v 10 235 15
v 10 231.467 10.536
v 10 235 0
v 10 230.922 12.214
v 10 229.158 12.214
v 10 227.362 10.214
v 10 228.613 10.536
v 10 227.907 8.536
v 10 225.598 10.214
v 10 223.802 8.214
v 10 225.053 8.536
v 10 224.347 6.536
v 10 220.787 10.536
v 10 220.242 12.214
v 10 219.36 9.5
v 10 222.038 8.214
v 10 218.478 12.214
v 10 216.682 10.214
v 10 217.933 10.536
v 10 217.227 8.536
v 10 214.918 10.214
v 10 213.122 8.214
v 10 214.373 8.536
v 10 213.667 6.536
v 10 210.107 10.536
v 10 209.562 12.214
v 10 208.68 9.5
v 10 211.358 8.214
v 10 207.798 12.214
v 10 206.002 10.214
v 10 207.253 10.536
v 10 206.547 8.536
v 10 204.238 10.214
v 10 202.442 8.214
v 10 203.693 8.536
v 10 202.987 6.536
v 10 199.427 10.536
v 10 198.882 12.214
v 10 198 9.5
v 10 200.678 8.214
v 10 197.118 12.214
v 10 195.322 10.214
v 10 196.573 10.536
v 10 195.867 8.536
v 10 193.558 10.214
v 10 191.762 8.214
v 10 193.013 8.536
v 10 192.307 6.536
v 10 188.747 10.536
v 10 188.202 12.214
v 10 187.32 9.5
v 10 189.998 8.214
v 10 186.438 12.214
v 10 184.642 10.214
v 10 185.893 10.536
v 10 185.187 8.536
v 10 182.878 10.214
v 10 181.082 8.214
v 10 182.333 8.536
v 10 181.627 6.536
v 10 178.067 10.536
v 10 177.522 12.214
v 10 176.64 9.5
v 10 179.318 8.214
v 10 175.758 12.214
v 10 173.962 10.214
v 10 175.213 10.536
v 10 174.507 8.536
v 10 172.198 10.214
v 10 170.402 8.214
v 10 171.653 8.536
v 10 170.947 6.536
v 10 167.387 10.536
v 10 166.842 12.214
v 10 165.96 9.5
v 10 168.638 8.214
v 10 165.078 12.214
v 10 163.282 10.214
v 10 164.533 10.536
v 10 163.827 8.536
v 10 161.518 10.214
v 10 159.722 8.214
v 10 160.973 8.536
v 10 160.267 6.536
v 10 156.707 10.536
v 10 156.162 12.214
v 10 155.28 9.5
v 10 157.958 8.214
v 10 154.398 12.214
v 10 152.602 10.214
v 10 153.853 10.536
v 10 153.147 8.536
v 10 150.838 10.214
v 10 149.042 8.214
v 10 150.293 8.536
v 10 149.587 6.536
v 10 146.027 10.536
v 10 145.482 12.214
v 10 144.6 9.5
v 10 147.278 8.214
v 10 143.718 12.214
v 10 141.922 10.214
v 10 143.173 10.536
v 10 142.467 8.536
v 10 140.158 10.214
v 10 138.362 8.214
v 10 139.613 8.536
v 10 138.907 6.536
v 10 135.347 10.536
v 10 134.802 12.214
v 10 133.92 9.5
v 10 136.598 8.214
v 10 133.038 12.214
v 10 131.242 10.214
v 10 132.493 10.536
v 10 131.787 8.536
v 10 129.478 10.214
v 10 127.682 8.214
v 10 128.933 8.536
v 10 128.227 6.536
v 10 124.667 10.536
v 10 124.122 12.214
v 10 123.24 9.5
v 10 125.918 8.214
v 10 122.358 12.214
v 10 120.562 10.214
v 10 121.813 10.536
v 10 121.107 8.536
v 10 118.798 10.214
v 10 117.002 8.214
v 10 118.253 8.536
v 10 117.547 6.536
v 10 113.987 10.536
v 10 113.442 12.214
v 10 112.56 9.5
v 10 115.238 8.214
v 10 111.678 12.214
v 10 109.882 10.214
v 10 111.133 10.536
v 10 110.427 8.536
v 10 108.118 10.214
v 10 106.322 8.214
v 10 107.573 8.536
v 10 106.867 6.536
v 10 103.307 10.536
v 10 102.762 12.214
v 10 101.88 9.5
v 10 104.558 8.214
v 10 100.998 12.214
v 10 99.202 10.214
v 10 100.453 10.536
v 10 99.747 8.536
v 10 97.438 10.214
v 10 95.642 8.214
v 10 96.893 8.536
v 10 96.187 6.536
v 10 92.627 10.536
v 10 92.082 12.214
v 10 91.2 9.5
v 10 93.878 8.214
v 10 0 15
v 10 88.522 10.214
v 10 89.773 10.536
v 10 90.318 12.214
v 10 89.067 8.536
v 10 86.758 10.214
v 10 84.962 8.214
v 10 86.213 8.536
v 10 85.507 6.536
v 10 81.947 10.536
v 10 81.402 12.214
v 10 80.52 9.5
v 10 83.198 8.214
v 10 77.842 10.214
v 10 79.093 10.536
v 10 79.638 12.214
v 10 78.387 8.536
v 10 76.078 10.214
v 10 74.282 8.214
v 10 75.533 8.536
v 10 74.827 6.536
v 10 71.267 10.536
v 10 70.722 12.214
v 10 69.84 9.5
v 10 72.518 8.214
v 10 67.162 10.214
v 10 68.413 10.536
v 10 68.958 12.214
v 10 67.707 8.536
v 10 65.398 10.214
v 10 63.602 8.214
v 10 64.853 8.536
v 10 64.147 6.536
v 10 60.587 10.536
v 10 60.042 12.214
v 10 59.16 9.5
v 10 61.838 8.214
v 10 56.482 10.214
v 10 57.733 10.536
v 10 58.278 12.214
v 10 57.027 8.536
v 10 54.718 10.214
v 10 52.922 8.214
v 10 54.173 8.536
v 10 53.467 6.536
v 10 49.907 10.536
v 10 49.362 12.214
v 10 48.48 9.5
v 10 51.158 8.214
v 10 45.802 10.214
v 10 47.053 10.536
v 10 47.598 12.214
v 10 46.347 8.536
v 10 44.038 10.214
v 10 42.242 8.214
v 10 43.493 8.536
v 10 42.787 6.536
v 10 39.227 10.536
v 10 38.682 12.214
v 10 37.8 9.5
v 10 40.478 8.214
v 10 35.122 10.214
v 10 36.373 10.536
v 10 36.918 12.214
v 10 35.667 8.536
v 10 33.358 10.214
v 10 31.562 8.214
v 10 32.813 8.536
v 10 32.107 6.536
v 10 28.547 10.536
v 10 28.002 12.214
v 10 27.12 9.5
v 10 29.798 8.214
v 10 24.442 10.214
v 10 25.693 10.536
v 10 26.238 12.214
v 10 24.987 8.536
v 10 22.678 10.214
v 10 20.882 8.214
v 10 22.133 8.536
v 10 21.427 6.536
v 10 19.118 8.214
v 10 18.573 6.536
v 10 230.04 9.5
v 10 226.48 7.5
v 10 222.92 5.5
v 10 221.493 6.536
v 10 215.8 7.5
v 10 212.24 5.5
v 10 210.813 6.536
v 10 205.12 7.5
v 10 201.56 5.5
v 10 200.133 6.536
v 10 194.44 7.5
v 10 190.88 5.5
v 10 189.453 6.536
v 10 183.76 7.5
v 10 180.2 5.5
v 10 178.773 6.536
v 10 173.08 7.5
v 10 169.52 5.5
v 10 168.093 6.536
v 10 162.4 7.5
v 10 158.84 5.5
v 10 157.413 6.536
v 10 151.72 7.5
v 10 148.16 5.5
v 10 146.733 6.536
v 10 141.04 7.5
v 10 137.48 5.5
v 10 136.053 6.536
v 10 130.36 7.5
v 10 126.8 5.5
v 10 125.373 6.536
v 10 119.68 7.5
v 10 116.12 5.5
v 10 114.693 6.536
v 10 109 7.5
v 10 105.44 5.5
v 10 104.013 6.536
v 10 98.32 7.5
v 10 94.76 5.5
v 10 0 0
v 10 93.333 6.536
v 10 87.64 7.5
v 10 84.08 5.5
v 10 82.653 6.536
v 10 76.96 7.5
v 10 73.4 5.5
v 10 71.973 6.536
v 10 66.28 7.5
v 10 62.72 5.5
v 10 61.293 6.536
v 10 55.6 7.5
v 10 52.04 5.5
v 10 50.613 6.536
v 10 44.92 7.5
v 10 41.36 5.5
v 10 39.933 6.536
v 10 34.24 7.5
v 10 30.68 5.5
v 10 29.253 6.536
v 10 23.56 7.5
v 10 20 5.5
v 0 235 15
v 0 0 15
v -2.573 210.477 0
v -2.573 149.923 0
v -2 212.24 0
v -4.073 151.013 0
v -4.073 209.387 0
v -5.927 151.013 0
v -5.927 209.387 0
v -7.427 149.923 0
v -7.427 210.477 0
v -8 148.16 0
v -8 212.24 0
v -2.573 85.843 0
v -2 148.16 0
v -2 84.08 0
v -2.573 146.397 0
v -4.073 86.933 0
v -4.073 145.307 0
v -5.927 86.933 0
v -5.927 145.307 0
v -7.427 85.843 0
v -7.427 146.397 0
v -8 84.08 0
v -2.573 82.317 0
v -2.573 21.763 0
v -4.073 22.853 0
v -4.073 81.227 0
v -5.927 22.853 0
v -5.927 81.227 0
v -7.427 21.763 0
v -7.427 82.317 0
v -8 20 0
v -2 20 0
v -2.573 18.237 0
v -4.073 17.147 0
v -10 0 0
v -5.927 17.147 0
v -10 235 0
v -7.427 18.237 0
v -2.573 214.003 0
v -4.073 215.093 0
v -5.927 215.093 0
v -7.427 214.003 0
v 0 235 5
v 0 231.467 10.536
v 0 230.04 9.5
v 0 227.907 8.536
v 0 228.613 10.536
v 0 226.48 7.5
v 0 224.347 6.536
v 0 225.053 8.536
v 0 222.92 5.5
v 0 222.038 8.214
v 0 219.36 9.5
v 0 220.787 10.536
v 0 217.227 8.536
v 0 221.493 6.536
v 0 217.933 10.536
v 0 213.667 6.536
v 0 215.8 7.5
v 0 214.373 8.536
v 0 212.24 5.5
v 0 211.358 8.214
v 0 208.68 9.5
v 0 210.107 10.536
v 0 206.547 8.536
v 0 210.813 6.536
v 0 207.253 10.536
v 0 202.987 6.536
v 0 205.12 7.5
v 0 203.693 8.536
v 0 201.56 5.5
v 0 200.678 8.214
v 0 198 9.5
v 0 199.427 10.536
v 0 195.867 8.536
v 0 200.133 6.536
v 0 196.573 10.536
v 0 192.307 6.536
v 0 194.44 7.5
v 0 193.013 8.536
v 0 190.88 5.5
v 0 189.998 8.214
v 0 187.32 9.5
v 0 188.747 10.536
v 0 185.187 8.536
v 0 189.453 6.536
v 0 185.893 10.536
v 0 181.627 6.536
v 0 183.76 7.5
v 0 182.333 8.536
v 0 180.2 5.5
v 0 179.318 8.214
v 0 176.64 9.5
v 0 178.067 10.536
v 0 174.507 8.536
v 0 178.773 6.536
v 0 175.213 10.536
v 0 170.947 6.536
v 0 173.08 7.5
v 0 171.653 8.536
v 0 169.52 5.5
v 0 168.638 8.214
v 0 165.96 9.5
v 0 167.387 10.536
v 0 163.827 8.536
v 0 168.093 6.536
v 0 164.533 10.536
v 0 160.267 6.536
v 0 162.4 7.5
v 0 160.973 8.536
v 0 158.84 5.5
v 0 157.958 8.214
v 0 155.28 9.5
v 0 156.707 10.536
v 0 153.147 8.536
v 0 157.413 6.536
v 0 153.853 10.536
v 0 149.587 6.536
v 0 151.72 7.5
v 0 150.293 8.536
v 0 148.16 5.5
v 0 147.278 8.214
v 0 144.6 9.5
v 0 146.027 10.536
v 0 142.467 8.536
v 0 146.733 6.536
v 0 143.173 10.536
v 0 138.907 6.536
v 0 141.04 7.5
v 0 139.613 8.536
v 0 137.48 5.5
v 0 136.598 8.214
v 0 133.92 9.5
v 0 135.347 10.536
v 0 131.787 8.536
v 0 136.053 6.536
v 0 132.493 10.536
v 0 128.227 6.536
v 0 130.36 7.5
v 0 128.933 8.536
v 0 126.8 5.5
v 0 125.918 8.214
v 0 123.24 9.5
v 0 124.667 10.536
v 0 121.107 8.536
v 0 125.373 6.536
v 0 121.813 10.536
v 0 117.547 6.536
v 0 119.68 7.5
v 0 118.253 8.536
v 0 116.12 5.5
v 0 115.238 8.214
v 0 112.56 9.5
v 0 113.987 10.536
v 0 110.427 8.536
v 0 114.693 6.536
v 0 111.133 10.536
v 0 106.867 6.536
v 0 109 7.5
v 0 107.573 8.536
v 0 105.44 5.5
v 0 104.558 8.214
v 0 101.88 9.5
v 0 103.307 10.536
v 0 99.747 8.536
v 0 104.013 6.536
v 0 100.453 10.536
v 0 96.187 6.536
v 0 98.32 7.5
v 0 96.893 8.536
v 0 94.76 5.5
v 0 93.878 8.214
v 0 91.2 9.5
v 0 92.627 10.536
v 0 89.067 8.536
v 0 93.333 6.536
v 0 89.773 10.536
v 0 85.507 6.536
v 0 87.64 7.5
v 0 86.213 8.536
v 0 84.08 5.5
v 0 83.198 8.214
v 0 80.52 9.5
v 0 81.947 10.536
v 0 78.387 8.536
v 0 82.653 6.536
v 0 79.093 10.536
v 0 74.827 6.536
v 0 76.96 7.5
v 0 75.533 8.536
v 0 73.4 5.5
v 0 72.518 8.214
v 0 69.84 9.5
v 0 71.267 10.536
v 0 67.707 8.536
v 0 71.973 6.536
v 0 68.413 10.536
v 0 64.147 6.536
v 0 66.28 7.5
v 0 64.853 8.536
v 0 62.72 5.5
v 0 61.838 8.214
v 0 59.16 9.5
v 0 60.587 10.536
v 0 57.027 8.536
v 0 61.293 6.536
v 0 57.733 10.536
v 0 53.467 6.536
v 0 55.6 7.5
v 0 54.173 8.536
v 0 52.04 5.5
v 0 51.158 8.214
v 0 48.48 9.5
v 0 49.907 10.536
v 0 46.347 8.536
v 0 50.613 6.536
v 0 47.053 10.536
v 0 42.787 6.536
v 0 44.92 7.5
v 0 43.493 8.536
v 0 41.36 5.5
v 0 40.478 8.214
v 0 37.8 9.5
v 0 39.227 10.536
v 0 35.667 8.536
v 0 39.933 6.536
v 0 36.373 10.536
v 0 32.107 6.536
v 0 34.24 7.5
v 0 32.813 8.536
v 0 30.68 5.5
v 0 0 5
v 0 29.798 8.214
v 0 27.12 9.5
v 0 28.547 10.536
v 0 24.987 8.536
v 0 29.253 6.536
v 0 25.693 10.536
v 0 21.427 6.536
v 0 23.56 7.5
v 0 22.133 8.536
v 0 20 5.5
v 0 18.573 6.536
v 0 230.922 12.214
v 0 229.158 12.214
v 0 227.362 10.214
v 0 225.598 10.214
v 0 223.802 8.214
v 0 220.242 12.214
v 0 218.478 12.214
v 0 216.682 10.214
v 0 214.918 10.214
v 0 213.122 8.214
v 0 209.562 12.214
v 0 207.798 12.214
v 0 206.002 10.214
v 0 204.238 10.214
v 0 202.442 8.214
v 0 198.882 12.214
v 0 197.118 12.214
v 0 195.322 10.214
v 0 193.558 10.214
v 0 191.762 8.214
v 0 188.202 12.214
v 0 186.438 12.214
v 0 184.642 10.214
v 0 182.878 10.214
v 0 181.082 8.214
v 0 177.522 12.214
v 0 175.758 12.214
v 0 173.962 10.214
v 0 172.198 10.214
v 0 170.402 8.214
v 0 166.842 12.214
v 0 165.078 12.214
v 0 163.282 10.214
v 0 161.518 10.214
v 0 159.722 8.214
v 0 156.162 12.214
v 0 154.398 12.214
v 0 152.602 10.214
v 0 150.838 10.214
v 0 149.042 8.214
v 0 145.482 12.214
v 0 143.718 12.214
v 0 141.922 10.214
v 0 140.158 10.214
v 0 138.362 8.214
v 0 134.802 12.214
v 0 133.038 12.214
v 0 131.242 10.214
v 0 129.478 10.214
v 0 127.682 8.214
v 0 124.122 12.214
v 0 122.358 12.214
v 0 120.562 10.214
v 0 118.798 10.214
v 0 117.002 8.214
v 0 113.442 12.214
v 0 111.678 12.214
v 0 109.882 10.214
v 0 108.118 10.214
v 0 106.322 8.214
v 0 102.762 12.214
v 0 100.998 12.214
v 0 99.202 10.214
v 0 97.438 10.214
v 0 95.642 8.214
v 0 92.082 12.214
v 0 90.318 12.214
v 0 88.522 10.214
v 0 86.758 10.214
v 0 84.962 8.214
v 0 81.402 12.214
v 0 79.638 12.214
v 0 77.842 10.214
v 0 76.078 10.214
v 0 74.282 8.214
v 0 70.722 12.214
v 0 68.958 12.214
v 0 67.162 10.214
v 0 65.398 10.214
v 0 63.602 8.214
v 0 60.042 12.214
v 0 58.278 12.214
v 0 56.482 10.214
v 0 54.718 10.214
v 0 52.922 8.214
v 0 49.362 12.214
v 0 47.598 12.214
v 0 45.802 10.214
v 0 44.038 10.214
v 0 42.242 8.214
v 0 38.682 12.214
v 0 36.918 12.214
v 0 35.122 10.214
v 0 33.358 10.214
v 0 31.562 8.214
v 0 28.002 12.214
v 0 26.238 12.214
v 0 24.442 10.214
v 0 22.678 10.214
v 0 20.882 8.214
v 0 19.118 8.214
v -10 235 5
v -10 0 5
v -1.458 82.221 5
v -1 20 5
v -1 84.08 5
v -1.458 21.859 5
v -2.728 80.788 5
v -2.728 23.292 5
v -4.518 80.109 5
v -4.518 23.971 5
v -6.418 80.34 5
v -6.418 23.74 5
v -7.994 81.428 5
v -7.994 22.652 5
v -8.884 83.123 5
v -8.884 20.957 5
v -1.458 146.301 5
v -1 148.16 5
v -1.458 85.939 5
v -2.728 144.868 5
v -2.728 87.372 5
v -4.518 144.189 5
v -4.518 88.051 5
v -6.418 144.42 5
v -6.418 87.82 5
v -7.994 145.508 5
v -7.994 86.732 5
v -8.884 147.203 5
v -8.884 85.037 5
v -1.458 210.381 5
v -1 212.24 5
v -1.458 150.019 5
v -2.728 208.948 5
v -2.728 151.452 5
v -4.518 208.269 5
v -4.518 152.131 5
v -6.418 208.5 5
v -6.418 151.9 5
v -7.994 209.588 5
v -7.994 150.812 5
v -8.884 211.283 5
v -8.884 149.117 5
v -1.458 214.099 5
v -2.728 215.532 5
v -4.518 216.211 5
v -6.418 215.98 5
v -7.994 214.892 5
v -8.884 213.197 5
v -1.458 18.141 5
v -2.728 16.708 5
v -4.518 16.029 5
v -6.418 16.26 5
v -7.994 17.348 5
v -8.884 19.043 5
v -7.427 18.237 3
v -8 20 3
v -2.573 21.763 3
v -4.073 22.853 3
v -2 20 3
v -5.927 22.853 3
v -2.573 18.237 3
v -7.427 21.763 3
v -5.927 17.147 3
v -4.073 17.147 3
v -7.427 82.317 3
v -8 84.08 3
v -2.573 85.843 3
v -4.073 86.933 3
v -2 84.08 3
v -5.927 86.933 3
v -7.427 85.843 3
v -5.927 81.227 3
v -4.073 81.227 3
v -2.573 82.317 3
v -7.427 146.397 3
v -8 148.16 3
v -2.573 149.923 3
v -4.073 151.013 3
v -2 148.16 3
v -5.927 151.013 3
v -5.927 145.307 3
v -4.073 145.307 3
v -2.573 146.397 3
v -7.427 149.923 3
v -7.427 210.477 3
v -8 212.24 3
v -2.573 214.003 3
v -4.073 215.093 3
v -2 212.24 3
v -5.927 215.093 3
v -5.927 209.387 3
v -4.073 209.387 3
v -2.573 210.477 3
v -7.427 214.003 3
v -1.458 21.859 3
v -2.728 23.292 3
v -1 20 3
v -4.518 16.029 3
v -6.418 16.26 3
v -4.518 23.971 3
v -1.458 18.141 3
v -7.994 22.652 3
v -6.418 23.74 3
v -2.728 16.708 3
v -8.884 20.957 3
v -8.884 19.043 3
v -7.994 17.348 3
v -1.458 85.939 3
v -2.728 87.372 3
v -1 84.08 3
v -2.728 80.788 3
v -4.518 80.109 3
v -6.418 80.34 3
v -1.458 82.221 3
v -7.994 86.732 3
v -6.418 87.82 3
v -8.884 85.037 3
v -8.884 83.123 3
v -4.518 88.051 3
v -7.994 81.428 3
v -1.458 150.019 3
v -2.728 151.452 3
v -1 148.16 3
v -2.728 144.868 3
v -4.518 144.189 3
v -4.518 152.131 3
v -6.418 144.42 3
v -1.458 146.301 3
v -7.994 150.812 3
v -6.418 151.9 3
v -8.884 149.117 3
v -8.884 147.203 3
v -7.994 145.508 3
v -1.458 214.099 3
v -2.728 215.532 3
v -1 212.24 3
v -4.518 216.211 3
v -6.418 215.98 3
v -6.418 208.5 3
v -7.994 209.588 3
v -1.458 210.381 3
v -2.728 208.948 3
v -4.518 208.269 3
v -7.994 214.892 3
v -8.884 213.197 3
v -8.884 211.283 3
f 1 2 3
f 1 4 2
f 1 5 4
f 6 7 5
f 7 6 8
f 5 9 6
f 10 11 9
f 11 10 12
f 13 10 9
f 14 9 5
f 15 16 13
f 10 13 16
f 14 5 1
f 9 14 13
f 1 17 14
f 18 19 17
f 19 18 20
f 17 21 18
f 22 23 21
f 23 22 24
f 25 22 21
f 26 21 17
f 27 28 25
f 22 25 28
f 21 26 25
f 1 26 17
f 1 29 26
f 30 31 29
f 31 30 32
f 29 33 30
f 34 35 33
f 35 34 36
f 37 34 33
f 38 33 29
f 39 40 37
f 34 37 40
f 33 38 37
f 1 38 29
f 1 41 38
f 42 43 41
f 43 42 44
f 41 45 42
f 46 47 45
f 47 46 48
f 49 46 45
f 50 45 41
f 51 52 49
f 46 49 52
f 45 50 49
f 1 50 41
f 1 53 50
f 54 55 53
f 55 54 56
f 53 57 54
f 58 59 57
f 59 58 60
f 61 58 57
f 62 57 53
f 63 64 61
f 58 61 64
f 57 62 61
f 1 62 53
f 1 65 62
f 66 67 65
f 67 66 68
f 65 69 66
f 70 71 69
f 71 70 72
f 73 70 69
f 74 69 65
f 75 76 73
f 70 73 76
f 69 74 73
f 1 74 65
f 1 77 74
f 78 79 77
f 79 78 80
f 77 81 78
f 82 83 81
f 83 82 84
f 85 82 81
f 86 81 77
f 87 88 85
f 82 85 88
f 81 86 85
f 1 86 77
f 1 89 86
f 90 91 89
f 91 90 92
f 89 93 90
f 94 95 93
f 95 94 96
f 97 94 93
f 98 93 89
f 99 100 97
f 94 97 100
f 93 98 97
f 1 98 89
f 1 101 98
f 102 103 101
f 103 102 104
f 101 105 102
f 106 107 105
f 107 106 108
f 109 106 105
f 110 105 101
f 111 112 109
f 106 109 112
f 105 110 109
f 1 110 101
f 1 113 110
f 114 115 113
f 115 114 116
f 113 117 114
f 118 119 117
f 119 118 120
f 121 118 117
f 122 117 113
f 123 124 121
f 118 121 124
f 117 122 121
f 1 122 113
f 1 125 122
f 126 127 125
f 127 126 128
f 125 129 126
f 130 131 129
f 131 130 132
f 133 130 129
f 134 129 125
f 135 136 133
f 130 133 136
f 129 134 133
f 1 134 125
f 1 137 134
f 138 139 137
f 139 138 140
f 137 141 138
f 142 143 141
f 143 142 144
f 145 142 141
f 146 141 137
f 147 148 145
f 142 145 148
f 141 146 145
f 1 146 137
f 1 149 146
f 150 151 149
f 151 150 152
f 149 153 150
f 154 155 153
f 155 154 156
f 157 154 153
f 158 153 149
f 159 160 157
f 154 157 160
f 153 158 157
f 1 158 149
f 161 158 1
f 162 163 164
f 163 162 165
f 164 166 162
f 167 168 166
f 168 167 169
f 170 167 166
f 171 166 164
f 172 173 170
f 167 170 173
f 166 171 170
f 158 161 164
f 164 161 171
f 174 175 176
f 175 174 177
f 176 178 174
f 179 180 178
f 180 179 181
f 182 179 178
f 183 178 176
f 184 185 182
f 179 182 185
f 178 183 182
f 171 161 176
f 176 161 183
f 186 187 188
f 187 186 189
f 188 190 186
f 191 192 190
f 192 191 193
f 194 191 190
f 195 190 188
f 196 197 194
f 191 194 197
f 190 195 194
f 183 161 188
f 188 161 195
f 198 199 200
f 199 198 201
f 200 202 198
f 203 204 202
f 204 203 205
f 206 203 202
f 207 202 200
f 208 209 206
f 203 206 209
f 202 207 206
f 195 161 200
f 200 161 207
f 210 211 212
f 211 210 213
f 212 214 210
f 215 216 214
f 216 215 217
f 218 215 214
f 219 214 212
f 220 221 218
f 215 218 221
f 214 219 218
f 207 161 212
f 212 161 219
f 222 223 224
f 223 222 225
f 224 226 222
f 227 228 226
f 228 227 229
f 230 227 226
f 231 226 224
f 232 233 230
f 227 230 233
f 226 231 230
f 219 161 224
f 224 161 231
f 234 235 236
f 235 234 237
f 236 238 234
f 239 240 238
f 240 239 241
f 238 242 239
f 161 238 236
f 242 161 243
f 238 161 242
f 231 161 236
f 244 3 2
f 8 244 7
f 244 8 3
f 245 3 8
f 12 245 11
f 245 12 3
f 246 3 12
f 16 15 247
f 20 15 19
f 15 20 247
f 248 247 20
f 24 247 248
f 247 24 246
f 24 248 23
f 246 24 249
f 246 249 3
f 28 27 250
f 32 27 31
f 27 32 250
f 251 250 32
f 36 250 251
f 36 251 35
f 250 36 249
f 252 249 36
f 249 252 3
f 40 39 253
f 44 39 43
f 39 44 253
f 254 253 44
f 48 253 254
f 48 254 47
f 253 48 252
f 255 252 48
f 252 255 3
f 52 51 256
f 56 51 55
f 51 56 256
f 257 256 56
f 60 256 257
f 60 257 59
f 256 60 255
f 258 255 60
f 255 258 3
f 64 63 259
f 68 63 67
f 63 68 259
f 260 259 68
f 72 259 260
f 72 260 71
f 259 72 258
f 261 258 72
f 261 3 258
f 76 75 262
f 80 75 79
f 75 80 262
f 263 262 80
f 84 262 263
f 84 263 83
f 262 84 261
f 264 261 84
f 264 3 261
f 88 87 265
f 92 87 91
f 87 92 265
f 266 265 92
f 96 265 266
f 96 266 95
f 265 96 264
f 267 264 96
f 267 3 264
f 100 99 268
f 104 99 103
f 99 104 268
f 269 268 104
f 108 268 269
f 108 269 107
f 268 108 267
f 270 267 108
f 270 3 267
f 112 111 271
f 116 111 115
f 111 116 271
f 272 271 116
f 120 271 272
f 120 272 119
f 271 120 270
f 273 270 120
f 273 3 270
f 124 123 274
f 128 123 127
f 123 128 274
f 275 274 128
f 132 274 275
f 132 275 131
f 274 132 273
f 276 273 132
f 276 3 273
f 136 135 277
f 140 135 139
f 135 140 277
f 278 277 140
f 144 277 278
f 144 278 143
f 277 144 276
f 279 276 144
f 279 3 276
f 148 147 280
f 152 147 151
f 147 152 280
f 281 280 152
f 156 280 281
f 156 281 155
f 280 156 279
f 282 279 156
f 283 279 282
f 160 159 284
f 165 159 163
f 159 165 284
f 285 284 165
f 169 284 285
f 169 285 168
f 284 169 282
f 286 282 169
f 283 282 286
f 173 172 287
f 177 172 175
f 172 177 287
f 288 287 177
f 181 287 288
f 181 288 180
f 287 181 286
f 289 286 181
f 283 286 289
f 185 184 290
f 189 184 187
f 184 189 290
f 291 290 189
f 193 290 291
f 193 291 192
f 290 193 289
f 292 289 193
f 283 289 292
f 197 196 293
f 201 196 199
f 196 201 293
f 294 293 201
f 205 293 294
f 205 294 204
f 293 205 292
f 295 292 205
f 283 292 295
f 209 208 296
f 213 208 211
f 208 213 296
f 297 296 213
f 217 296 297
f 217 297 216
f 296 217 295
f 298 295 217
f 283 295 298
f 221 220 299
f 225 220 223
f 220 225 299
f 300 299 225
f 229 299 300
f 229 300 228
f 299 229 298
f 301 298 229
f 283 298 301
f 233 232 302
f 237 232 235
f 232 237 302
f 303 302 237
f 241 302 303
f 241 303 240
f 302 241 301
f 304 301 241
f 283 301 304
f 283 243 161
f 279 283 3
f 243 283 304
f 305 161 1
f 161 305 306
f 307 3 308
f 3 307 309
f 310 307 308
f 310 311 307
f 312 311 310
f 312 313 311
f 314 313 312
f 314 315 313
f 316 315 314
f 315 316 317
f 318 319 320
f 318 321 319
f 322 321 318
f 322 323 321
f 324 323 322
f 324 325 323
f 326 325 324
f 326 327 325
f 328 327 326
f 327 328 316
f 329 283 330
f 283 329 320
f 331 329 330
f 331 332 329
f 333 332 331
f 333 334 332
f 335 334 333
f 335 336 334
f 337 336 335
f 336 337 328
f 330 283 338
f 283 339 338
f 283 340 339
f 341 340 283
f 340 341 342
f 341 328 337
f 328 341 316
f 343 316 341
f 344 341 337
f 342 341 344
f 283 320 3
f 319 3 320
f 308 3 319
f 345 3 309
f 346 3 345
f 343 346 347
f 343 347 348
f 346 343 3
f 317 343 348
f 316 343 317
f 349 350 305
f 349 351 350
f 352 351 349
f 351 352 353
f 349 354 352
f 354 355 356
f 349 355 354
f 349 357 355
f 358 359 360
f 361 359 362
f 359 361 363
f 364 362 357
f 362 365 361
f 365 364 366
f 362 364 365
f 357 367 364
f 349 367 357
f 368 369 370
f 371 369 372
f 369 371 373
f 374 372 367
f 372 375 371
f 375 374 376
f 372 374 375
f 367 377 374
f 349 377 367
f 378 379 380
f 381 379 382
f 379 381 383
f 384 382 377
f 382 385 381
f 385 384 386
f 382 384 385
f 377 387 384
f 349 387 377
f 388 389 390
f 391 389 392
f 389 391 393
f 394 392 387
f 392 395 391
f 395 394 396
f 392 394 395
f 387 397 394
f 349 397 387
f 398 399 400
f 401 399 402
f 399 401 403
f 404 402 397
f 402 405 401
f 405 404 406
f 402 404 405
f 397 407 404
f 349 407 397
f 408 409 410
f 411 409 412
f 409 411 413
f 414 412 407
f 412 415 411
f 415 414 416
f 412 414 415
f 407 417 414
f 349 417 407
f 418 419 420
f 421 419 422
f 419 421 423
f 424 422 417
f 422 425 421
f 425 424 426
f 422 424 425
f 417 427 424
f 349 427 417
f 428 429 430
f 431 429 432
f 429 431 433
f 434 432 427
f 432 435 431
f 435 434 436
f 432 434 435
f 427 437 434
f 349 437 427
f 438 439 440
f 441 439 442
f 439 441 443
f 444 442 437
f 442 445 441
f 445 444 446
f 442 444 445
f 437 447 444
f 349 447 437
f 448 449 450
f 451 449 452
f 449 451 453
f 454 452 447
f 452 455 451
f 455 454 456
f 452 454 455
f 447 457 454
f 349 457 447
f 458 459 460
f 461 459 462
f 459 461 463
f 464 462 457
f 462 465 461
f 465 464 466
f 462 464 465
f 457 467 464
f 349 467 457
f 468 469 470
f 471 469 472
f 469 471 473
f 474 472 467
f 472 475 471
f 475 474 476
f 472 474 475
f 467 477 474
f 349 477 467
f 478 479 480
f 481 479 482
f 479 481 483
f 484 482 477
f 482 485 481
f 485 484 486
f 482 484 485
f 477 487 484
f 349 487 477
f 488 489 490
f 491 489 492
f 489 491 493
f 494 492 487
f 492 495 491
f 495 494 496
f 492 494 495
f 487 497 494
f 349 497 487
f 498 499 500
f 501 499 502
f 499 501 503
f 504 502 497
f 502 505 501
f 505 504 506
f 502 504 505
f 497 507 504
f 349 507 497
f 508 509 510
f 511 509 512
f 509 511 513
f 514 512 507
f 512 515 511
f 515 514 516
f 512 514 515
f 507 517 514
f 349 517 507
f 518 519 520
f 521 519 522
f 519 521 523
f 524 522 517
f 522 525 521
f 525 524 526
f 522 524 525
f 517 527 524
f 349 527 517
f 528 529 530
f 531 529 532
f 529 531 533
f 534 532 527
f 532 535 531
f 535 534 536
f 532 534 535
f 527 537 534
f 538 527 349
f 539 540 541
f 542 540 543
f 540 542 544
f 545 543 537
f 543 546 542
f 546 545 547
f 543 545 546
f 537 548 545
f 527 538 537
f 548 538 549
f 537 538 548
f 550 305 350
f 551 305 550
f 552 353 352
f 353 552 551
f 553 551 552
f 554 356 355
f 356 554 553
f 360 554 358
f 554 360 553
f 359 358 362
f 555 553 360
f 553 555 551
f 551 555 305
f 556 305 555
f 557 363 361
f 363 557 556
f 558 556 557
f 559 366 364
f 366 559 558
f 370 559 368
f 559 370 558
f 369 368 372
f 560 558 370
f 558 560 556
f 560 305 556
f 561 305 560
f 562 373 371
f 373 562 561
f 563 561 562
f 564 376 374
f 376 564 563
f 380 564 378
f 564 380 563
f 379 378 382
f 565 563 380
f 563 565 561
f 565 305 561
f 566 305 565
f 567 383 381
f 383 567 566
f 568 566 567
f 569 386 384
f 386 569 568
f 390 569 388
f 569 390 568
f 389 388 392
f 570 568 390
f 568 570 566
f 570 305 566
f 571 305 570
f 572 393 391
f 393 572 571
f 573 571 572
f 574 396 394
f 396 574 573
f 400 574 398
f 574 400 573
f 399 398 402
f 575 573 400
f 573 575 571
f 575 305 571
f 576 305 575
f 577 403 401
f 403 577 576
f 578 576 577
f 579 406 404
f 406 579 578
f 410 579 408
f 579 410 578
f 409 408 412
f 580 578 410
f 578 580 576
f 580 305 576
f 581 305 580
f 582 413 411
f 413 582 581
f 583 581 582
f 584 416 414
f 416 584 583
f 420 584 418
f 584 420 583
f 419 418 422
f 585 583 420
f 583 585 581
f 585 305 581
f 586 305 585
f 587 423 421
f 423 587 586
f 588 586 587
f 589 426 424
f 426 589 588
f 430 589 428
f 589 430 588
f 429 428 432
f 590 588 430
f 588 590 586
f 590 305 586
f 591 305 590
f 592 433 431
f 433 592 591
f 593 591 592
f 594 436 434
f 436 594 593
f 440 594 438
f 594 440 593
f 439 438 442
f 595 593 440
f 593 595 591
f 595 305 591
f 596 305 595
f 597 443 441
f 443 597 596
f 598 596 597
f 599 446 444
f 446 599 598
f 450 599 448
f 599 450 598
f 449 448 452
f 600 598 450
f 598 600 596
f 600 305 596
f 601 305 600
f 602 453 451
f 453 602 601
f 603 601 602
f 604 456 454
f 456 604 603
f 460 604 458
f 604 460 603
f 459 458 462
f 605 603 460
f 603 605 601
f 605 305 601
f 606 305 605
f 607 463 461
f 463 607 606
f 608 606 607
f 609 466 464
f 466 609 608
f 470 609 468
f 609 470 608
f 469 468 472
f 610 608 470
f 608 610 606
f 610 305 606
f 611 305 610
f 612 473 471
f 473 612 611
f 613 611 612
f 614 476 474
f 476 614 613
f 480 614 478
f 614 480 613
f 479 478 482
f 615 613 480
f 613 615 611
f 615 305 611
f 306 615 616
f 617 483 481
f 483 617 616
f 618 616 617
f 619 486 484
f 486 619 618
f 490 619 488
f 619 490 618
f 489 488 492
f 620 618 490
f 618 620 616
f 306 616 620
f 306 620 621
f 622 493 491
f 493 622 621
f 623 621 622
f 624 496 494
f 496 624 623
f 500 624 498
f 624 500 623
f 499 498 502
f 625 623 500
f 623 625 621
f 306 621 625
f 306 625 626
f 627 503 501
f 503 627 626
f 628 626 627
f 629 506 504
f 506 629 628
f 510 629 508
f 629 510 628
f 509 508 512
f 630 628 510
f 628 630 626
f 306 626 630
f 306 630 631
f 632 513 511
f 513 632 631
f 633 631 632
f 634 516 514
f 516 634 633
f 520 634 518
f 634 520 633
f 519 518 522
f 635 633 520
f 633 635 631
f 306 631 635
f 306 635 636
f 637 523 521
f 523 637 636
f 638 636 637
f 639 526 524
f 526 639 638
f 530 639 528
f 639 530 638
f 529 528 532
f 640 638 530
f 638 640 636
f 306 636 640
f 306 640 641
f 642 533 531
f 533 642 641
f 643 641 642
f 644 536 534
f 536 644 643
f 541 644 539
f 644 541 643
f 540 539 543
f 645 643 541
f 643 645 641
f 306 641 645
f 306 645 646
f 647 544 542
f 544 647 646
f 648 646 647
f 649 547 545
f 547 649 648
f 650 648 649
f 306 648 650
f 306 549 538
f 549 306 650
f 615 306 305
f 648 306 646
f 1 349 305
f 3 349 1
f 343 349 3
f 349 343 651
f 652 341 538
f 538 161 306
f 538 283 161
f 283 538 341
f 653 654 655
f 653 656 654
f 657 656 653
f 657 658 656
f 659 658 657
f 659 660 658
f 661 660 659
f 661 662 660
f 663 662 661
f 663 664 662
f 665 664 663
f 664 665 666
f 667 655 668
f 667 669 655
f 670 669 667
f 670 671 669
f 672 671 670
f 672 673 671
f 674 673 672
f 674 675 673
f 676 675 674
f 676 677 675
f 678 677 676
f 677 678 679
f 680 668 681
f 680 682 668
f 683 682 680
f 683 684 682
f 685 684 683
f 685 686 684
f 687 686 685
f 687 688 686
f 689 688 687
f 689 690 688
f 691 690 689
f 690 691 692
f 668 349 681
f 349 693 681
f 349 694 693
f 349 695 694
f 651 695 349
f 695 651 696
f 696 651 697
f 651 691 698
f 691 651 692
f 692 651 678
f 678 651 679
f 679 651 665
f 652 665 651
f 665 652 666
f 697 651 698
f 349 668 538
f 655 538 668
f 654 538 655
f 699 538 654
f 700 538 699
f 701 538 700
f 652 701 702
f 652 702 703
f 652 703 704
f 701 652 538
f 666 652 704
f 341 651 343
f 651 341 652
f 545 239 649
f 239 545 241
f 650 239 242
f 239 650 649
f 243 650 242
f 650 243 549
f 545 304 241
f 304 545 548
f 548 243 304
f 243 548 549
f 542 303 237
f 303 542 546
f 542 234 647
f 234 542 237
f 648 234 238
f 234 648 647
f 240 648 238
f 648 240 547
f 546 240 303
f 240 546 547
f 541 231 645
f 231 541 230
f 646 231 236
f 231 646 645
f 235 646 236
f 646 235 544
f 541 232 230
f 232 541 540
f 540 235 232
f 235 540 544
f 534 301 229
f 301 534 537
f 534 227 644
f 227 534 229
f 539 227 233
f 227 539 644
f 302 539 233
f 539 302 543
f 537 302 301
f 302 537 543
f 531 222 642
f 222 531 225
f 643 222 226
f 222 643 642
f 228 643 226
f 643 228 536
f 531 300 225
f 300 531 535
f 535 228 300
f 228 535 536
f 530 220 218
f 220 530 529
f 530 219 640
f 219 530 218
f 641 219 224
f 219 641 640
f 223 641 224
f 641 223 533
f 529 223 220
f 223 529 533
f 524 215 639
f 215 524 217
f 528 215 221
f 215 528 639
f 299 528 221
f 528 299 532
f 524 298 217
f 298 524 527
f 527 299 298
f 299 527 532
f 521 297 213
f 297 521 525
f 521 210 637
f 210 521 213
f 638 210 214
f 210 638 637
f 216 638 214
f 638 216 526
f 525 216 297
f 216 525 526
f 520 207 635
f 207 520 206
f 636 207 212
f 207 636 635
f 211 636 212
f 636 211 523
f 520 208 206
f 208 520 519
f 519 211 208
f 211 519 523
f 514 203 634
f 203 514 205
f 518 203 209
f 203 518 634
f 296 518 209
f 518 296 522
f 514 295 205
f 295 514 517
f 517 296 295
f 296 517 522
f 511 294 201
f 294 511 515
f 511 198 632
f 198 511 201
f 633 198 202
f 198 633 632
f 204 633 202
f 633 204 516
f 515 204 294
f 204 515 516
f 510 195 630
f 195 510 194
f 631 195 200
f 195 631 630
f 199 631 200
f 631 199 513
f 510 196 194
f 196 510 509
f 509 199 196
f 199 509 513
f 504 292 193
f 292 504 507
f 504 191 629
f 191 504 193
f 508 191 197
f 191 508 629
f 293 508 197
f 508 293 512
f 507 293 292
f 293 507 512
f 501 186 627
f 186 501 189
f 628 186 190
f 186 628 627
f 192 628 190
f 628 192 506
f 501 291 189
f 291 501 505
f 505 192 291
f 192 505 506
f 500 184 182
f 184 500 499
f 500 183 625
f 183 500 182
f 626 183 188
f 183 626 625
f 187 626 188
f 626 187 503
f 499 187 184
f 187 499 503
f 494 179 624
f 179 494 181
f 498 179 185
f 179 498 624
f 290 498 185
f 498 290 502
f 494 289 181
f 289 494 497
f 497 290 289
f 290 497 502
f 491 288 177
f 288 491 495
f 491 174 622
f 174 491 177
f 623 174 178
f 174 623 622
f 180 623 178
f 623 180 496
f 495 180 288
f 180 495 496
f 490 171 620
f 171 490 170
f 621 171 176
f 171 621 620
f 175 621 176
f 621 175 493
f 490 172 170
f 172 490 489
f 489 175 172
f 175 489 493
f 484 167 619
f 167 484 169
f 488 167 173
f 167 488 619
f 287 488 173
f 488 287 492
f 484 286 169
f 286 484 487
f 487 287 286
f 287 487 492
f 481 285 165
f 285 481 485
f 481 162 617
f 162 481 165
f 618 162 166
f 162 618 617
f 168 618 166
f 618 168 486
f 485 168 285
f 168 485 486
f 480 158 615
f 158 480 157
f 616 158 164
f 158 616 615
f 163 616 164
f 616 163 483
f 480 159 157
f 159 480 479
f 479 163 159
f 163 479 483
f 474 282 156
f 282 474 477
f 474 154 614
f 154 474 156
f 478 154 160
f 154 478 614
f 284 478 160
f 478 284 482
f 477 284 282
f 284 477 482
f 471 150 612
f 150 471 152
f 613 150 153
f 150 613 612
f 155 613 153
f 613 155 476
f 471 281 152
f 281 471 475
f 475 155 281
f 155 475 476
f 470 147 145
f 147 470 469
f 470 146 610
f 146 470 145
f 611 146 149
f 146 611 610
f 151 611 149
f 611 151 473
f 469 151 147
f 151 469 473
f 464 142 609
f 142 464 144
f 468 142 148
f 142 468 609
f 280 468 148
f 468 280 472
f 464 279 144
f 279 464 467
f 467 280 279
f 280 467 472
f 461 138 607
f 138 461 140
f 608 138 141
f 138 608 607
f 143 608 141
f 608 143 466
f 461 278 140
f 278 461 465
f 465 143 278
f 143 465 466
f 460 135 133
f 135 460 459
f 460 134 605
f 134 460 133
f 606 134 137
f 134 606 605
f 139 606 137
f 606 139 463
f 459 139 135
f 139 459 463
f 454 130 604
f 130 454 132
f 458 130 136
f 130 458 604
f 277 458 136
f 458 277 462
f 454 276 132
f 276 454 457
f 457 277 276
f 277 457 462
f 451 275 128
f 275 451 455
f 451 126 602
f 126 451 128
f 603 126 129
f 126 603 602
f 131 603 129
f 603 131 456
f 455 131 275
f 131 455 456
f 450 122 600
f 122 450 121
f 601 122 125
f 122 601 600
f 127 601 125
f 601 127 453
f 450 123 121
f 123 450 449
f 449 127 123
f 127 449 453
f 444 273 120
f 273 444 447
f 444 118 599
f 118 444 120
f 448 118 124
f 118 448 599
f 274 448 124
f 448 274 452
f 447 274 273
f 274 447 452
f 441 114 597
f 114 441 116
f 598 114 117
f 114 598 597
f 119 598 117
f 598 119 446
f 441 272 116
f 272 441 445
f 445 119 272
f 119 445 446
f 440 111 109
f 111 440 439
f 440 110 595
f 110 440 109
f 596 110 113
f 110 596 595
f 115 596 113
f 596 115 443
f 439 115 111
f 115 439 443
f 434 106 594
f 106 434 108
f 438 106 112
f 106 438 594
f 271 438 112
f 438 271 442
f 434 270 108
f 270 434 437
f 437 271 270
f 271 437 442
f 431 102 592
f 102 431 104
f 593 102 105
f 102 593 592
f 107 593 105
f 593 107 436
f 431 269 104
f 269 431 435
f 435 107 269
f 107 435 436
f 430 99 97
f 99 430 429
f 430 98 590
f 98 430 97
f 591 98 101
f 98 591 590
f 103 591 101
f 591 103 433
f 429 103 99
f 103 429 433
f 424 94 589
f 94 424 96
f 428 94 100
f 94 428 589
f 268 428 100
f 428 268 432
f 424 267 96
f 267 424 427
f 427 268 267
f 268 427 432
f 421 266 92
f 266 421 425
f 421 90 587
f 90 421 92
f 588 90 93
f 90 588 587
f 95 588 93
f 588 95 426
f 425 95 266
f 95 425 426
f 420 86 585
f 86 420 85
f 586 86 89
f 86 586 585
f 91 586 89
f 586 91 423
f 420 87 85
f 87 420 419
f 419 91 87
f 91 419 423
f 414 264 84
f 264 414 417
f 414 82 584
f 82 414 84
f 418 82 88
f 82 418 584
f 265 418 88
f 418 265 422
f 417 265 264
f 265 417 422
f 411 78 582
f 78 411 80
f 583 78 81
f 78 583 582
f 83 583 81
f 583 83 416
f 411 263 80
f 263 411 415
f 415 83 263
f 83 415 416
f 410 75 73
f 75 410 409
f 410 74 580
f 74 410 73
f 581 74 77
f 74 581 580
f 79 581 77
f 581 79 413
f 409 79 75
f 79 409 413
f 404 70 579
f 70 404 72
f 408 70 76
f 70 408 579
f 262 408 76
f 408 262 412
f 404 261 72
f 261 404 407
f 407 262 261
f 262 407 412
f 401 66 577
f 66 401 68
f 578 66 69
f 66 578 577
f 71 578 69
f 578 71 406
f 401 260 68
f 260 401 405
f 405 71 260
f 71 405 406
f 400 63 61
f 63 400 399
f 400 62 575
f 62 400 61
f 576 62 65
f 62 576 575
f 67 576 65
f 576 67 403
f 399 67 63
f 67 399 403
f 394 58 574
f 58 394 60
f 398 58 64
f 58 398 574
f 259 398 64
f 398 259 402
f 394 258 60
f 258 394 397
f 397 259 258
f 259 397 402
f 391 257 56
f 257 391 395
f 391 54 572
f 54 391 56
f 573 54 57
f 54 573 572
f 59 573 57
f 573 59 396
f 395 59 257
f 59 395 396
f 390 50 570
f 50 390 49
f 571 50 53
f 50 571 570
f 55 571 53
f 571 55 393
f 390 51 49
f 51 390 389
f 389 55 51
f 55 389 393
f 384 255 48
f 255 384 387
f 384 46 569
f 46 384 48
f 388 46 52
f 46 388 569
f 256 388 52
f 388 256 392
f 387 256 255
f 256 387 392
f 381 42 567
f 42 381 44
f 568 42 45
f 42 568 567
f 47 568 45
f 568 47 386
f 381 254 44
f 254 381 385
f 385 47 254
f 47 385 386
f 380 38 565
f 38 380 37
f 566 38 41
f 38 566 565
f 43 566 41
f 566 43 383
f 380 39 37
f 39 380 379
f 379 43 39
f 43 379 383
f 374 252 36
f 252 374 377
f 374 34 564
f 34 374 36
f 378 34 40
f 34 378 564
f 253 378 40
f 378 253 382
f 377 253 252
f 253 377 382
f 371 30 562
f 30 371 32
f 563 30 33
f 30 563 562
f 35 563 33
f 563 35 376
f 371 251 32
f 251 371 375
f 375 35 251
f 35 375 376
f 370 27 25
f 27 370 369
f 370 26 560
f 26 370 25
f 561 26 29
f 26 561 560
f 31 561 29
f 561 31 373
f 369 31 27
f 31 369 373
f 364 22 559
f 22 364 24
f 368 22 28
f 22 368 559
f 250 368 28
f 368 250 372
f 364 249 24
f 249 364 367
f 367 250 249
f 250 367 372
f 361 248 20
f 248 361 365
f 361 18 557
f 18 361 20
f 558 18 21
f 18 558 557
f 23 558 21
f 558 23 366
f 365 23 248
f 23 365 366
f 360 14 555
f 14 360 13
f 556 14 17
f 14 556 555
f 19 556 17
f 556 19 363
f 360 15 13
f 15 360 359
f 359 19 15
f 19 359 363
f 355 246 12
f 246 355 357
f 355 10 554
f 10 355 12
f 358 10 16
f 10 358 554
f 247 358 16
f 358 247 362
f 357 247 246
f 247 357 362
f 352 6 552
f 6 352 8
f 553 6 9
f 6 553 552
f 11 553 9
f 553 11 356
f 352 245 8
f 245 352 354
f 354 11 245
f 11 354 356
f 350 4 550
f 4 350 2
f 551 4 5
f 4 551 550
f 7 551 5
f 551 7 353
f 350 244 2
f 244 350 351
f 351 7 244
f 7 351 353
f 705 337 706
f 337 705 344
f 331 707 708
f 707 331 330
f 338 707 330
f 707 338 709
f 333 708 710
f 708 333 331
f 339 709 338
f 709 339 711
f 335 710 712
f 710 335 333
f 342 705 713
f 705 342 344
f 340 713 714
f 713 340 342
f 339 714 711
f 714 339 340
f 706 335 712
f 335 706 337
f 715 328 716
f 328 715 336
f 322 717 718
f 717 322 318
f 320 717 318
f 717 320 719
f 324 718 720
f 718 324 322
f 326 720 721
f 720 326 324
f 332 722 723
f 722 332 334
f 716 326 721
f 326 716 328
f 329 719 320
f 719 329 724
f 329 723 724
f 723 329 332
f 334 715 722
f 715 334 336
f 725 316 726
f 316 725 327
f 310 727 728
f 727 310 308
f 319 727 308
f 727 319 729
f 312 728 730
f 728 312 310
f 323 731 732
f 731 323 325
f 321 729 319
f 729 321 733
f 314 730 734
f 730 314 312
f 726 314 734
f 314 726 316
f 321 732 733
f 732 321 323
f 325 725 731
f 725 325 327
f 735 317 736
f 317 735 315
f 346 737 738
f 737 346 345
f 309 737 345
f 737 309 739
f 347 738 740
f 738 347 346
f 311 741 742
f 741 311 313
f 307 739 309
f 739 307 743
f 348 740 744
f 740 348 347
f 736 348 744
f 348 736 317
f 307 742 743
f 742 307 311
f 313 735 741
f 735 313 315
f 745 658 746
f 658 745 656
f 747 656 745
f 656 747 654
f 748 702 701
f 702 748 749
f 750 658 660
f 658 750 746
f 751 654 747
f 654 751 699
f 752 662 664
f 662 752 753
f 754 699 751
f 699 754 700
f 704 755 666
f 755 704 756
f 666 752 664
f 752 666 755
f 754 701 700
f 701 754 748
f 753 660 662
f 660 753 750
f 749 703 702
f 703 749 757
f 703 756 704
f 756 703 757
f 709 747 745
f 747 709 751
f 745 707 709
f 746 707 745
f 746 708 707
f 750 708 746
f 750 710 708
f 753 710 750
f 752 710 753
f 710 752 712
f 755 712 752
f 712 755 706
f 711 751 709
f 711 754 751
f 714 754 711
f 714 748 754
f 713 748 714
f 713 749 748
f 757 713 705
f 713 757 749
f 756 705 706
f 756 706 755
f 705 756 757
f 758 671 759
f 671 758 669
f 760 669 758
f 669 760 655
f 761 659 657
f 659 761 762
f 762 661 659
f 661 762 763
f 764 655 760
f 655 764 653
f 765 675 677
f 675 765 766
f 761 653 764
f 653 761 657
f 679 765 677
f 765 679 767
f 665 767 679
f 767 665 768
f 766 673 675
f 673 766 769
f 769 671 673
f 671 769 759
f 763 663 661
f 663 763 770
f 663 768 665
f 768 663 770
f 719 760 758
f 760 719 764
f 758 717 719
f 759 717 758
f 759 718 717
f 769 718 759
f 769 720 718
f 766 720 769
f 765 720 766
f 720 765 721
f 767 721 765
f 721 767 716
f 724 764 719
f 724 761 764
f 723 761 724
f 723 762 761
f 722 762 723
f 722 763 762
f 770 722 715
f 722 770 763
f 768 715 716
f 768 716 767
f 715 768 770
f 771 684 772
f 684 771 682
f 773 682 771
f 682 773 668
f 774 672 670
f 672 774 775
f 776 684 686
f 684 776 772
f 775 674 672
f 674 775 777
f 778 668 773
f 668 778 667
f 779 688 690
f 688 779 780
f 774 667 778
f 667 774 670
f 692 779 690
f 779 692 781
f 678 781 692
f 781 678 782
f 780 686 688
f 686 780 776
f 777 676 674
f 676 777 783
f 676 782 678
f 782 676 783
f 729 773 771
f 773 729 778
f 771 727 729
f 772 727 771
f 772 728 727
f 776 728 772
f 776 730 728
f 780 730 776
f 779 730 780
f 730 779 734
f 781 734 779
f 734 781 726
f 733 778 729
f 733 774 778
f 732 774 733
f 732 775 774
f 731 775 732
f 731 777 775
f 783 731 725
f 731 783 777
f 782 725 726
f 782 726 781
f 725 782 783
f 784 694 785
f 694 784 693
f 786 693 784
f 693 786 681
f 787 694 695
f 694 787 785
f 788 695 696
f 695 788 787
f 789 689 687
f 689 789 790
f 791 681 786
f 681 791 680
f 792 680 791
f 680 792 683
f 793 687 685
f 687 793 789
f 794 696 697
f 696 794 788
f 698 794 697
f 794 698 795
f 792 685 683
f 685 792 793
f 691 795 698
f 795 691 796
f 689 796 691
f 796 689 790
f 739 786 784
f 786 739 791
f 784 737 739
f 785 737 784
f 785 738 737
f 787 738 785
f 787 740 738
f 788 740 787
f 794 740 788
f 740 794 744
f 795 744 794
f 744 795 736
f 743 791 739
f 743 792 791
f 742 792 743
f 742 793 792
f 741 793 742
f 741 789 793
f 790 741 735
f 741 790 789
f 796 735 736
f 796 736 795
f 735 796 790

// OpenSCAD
//$fn = 20;
strSpc = 3.56;
hR = 1.5;
barX = 10;
barY = 235;//250;
barZ = 15;
nKeys = 60;
osetY = 20;
osetZ = 10;
scrR = 3.0;//1.5;
scrHdR = 4;
difference(){
    positives();
    negatives();
}

module negatives(){
    //Pass-through holes for strings:
for (i = [0 : 1 : (nKeys-1)]) {
    translate([0,i*strSpc+osetY,osetZ+(i%3)*2-3]) rotate([0,90,0]) cylinder(barX,hR,hR);
}
    //Mounting holes for screws:
for (i = [0 : 18 : (nKeys)]) {
    translate([-barX/2,i*strSpc+osetY,0]) rotate([0,0,0]) cylinder(osetZ,scrR,scrR);
}
    //Countersink holes for screw heads:
for (i = [0 : 18 : (nKeys)]) {
    translate([-barX/2,i*strSpc+osetY,osetZ-2-4-1]) rotate([0,0,0]) cylinder(4,scrHdR,scrHdR);
}
}

module positives(){
    cube([barX,barY,barZ]);
    translate([-barX,0,0]) cube([barX,barY,osetZ-2-3]);
}
